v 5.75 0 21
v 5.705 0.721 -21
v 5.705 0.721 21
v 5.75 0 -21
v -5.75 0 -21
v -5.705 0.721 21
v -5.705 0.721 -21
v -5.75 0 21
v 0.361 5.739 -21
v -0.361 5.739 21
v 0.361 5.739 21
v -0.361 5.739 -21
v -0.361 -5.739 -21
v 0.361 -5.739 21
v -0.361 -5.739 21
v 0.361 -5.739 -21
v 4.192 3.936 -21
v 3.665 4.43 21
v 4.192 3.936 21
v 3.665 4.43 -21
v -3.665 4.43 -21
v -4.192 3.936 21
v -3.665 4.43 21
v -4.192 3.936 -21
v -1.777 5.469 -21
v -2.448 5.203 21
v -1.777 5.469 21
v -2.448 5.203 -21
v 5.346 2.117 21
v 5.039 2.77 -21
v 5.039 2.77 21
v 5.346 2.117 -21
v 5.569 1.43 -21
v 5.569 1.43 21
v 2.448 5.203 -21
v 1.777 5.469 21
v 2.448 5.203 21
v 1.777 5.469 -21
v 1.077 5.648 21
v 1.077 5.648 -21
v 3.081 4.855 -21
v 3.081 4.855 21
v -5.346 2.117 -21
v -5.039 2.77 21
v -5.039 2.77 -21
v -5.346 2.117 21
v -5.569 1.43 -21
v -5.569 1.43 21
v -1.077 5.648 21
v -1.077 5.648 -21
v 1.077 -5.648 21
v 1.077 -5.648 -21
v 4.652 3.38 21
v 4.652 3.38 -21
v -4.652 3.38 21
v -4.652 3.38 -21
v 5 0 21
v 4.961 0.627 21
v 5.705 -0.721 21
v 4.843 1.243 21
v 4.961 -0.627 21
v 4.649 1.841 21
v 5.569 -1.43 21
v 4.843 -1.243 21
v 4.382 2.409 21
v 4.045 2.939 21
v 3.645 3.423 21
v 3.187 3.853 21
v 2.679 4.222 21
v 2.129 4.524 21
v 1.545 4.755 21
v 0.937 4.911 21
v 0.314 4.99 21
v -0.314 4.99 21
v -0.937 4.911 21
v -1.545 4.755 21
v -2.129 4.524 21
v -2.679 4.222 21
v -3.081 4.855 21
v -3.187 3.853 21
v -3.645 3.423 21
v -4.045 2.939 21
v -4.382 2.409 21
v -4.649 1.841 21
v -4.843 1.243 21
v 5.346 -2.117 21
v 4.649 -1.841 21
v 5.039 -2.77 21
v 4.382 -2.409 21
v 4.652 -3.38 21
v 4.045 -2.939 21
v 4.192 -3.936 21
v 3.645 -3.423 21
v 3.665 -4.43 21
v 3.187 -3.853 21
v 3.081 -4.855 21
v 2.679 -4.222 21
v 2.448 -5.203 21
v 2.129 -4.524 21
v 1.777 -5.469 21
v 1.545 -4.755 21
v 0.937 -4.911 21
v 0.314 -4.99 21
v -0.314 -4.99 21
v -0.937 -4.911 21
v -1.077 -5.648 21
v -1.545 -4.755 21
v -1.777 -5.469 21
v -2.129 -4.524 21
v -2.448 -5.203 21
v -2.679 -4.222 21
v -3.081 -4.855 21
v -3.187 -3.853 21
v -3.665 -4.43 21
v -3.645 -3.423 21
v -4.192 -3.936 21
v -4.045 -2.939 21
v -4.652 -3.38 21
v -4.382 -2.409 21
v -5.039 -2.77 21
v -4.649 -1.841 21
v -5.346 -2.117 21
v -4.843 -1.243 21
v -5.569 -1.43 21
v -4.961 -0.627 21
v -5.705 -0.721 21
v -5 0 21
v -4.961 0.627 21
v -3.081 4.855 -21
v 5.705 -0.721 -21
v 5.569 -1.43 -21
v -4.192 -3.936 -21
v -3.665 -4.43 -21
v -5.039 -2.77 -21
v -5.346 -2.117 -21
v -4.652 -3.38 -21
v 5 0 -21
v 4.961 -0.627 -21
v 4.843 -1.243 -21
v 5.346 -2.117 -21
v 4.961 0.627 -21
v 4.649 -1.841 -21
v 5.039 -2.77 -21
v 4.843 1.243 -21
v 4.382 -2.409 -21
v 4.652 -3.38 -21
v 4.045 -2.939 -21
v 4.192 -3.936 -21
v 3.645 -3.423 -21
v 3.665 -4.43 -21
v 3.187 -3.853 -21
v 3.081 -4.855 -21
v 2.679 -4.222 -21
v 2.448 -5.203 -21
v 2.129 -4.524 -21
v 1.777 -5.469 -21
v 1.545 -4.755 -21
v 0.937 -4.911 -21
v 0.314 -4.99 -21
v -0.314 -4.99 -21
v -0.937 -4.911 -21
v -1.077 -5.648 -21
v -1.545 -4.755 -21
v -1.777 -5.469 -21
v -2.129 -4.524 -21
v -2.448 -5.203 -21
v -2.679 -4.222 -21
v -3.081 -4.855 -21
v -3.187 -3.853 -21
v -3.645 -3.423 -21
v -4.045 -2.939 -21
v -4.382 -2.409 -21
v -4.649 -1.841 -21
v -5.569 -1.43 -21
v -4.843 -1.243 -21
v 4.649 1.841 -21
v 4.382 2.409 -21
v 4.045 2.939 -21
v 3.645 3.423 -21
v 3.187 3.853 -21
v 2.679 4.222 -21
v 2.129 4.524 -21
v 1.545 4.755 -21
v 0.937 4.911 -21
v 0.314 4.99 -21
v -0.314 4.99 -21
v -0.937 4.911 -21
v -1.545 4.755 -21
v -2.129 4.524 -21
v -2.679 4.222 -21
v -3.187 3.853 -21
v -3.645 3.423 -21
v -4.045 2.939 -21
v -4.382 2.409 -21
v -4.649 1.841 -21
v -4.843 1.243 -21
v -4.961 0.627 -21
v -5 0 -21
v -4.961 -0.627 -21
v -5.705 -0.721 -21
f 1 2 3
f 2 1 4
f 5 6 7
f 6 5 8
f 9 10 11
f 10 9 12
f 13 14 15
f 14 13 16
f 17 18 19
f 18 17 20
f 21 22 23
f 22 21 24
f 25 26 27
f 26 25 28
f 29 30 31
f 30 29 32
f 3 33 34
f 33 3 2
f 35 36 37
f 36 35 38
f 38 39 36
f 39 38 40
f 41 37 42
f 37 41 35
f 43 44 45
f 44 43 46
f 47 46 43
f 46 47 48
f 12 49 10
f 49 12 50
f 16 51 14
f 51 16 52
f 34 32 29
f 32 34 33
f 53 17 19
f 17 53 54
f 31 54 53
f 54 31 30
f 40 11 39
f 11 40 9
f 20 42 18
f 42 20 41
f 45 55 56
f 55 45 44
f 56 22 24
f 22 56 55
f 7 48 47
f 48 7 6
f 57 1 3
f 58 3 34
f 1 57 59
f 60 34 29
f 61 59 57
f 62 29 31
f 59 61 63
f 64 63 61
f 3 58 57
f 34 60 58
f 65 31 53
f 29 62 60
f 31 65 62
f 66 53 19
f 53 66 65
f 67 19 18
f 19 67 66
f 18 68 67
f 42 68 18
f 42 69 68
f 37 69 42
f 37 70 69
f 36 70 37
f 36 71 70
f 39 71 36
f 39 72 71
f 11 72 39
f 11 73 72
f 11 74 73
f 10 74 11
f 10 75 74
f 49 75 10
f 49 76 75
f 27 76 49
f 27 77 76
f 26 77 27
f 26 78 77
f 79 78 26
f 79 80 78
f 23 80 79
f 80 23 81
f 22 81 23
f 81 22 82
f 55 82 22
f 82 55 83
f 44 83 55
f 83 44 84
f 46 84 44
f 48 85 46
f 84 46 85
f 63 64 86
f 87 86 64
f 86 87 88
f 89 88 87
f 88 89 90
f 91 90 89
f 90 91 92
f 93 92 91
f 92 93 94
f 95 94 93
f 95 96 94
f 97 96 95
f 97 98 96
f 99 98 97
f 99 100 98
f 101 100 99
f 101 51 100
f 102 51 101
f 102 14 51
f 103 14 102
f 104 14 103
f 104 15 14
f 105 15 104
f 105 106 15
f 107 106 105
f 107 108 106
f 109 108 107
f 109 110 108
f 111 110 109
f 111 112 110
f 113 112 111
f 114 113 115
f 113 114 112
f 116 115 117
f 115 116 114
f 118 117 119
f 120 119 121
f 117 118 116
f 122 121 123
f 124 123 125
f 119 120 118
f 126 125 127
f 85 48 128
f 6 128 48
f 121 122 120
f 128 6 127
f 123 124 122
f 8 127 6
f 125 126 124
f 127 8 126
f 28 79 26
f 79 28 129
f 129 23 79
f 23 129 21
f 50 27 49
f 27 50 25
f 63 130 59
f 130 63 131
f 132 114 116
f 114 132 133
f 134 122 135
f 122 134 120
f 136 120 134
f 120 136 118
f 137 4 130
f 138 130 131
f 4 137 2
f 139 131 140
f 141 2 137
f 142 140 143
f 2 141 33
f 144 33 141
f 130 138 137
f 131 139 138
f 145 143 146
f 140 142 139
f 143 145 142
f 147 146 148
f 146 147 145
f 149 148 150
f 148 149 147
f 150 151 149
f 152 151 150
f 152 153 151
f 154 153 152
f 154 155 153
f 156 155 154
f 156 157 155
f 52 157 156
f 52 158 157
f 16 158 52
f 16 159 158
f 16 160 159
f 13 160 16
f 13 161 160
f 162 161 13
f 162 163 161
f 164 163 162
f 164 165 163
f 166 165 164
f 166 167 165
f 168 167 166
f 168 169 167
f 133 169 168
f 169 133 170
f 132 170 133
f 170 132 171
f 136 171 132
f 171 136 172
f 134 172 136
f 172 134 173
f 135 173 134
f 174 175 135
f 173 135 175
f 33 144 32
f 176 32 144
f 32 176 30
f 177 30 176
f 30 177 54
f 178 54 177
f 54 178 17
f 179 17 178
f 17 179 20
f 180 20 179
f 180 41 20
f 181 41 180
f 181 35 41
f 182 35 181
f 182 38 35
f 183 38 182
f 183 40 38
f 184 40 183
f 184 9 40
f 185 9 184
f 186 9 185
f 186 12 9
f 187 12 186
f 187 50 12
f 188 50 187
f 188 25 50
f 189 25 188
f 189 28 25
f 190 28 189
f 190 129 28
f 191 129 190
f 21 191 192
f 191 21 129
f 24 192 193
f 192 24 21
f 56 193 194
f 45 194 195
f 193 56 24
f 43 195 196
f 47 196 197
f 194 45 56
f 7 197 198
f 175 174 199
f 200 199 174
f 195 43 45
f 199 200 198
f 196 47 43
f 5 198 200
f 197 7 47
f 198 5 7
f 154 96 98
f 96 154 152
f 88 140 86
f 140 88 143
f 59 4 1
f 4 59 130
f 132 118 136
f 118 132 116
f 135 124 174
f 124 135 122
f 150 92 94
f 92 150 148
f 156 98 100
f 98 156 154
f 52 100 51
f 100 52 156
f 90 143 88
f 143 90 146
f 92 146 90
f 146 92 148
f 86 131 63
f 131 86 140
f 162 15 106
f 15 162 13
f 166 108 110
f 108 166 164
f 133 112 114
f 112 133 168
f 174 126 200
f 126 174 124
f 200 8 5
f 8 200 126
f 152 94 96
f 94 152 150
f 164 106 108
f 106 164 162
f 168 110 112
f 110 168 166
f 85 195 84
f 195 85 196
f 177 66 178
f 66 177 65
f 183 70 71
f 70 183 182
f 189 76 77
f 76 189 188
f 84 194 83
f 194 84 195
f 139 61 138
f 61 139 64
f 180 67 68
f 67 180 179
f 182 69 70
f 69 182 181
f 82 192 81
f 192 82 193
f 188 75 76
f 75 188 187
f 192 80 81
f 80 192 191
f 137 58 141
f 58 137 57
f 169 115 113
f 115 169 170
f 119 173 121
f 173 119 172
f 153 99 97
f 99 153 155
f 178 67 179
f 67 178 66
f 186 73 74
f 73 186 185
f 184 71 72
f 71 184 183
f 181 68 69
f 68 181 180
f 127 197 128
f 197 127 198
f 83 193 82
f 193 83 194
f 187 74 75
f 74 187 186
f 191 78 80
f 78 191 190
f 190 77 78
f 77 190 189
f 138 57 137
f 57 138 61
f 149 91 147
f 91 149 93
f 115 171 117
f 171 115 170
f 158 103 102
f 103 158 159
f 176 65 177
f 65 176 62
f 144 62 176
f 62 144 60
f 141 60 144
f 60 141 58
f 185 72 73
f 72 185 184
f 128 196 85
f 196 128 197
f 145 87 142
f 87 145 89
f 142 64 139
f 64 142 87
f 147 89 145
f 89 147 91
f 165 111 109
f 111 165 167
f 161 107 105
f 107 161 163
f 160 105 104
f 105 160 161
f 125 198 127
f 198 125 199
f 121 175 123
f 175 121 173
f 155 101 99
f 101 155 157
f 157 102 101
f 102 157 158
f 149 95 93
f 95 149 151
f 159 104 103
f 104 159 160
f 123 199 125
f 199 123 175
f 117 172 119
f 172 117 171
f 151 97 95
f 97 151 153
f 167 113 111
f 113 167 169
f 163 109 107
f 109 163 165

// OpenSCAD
$fn = 50;


difference() {
	union() {
		translate(v = [0, 0, -21.0000000000]) {
			cylinder(h = 42, r = 5.7500000000);
		}
	}
	union() {
		translate(v = [0, 0, -100.0000000000]) {
			cylinder(h = 200, r = 5.0000000000);
		}
	}
}
